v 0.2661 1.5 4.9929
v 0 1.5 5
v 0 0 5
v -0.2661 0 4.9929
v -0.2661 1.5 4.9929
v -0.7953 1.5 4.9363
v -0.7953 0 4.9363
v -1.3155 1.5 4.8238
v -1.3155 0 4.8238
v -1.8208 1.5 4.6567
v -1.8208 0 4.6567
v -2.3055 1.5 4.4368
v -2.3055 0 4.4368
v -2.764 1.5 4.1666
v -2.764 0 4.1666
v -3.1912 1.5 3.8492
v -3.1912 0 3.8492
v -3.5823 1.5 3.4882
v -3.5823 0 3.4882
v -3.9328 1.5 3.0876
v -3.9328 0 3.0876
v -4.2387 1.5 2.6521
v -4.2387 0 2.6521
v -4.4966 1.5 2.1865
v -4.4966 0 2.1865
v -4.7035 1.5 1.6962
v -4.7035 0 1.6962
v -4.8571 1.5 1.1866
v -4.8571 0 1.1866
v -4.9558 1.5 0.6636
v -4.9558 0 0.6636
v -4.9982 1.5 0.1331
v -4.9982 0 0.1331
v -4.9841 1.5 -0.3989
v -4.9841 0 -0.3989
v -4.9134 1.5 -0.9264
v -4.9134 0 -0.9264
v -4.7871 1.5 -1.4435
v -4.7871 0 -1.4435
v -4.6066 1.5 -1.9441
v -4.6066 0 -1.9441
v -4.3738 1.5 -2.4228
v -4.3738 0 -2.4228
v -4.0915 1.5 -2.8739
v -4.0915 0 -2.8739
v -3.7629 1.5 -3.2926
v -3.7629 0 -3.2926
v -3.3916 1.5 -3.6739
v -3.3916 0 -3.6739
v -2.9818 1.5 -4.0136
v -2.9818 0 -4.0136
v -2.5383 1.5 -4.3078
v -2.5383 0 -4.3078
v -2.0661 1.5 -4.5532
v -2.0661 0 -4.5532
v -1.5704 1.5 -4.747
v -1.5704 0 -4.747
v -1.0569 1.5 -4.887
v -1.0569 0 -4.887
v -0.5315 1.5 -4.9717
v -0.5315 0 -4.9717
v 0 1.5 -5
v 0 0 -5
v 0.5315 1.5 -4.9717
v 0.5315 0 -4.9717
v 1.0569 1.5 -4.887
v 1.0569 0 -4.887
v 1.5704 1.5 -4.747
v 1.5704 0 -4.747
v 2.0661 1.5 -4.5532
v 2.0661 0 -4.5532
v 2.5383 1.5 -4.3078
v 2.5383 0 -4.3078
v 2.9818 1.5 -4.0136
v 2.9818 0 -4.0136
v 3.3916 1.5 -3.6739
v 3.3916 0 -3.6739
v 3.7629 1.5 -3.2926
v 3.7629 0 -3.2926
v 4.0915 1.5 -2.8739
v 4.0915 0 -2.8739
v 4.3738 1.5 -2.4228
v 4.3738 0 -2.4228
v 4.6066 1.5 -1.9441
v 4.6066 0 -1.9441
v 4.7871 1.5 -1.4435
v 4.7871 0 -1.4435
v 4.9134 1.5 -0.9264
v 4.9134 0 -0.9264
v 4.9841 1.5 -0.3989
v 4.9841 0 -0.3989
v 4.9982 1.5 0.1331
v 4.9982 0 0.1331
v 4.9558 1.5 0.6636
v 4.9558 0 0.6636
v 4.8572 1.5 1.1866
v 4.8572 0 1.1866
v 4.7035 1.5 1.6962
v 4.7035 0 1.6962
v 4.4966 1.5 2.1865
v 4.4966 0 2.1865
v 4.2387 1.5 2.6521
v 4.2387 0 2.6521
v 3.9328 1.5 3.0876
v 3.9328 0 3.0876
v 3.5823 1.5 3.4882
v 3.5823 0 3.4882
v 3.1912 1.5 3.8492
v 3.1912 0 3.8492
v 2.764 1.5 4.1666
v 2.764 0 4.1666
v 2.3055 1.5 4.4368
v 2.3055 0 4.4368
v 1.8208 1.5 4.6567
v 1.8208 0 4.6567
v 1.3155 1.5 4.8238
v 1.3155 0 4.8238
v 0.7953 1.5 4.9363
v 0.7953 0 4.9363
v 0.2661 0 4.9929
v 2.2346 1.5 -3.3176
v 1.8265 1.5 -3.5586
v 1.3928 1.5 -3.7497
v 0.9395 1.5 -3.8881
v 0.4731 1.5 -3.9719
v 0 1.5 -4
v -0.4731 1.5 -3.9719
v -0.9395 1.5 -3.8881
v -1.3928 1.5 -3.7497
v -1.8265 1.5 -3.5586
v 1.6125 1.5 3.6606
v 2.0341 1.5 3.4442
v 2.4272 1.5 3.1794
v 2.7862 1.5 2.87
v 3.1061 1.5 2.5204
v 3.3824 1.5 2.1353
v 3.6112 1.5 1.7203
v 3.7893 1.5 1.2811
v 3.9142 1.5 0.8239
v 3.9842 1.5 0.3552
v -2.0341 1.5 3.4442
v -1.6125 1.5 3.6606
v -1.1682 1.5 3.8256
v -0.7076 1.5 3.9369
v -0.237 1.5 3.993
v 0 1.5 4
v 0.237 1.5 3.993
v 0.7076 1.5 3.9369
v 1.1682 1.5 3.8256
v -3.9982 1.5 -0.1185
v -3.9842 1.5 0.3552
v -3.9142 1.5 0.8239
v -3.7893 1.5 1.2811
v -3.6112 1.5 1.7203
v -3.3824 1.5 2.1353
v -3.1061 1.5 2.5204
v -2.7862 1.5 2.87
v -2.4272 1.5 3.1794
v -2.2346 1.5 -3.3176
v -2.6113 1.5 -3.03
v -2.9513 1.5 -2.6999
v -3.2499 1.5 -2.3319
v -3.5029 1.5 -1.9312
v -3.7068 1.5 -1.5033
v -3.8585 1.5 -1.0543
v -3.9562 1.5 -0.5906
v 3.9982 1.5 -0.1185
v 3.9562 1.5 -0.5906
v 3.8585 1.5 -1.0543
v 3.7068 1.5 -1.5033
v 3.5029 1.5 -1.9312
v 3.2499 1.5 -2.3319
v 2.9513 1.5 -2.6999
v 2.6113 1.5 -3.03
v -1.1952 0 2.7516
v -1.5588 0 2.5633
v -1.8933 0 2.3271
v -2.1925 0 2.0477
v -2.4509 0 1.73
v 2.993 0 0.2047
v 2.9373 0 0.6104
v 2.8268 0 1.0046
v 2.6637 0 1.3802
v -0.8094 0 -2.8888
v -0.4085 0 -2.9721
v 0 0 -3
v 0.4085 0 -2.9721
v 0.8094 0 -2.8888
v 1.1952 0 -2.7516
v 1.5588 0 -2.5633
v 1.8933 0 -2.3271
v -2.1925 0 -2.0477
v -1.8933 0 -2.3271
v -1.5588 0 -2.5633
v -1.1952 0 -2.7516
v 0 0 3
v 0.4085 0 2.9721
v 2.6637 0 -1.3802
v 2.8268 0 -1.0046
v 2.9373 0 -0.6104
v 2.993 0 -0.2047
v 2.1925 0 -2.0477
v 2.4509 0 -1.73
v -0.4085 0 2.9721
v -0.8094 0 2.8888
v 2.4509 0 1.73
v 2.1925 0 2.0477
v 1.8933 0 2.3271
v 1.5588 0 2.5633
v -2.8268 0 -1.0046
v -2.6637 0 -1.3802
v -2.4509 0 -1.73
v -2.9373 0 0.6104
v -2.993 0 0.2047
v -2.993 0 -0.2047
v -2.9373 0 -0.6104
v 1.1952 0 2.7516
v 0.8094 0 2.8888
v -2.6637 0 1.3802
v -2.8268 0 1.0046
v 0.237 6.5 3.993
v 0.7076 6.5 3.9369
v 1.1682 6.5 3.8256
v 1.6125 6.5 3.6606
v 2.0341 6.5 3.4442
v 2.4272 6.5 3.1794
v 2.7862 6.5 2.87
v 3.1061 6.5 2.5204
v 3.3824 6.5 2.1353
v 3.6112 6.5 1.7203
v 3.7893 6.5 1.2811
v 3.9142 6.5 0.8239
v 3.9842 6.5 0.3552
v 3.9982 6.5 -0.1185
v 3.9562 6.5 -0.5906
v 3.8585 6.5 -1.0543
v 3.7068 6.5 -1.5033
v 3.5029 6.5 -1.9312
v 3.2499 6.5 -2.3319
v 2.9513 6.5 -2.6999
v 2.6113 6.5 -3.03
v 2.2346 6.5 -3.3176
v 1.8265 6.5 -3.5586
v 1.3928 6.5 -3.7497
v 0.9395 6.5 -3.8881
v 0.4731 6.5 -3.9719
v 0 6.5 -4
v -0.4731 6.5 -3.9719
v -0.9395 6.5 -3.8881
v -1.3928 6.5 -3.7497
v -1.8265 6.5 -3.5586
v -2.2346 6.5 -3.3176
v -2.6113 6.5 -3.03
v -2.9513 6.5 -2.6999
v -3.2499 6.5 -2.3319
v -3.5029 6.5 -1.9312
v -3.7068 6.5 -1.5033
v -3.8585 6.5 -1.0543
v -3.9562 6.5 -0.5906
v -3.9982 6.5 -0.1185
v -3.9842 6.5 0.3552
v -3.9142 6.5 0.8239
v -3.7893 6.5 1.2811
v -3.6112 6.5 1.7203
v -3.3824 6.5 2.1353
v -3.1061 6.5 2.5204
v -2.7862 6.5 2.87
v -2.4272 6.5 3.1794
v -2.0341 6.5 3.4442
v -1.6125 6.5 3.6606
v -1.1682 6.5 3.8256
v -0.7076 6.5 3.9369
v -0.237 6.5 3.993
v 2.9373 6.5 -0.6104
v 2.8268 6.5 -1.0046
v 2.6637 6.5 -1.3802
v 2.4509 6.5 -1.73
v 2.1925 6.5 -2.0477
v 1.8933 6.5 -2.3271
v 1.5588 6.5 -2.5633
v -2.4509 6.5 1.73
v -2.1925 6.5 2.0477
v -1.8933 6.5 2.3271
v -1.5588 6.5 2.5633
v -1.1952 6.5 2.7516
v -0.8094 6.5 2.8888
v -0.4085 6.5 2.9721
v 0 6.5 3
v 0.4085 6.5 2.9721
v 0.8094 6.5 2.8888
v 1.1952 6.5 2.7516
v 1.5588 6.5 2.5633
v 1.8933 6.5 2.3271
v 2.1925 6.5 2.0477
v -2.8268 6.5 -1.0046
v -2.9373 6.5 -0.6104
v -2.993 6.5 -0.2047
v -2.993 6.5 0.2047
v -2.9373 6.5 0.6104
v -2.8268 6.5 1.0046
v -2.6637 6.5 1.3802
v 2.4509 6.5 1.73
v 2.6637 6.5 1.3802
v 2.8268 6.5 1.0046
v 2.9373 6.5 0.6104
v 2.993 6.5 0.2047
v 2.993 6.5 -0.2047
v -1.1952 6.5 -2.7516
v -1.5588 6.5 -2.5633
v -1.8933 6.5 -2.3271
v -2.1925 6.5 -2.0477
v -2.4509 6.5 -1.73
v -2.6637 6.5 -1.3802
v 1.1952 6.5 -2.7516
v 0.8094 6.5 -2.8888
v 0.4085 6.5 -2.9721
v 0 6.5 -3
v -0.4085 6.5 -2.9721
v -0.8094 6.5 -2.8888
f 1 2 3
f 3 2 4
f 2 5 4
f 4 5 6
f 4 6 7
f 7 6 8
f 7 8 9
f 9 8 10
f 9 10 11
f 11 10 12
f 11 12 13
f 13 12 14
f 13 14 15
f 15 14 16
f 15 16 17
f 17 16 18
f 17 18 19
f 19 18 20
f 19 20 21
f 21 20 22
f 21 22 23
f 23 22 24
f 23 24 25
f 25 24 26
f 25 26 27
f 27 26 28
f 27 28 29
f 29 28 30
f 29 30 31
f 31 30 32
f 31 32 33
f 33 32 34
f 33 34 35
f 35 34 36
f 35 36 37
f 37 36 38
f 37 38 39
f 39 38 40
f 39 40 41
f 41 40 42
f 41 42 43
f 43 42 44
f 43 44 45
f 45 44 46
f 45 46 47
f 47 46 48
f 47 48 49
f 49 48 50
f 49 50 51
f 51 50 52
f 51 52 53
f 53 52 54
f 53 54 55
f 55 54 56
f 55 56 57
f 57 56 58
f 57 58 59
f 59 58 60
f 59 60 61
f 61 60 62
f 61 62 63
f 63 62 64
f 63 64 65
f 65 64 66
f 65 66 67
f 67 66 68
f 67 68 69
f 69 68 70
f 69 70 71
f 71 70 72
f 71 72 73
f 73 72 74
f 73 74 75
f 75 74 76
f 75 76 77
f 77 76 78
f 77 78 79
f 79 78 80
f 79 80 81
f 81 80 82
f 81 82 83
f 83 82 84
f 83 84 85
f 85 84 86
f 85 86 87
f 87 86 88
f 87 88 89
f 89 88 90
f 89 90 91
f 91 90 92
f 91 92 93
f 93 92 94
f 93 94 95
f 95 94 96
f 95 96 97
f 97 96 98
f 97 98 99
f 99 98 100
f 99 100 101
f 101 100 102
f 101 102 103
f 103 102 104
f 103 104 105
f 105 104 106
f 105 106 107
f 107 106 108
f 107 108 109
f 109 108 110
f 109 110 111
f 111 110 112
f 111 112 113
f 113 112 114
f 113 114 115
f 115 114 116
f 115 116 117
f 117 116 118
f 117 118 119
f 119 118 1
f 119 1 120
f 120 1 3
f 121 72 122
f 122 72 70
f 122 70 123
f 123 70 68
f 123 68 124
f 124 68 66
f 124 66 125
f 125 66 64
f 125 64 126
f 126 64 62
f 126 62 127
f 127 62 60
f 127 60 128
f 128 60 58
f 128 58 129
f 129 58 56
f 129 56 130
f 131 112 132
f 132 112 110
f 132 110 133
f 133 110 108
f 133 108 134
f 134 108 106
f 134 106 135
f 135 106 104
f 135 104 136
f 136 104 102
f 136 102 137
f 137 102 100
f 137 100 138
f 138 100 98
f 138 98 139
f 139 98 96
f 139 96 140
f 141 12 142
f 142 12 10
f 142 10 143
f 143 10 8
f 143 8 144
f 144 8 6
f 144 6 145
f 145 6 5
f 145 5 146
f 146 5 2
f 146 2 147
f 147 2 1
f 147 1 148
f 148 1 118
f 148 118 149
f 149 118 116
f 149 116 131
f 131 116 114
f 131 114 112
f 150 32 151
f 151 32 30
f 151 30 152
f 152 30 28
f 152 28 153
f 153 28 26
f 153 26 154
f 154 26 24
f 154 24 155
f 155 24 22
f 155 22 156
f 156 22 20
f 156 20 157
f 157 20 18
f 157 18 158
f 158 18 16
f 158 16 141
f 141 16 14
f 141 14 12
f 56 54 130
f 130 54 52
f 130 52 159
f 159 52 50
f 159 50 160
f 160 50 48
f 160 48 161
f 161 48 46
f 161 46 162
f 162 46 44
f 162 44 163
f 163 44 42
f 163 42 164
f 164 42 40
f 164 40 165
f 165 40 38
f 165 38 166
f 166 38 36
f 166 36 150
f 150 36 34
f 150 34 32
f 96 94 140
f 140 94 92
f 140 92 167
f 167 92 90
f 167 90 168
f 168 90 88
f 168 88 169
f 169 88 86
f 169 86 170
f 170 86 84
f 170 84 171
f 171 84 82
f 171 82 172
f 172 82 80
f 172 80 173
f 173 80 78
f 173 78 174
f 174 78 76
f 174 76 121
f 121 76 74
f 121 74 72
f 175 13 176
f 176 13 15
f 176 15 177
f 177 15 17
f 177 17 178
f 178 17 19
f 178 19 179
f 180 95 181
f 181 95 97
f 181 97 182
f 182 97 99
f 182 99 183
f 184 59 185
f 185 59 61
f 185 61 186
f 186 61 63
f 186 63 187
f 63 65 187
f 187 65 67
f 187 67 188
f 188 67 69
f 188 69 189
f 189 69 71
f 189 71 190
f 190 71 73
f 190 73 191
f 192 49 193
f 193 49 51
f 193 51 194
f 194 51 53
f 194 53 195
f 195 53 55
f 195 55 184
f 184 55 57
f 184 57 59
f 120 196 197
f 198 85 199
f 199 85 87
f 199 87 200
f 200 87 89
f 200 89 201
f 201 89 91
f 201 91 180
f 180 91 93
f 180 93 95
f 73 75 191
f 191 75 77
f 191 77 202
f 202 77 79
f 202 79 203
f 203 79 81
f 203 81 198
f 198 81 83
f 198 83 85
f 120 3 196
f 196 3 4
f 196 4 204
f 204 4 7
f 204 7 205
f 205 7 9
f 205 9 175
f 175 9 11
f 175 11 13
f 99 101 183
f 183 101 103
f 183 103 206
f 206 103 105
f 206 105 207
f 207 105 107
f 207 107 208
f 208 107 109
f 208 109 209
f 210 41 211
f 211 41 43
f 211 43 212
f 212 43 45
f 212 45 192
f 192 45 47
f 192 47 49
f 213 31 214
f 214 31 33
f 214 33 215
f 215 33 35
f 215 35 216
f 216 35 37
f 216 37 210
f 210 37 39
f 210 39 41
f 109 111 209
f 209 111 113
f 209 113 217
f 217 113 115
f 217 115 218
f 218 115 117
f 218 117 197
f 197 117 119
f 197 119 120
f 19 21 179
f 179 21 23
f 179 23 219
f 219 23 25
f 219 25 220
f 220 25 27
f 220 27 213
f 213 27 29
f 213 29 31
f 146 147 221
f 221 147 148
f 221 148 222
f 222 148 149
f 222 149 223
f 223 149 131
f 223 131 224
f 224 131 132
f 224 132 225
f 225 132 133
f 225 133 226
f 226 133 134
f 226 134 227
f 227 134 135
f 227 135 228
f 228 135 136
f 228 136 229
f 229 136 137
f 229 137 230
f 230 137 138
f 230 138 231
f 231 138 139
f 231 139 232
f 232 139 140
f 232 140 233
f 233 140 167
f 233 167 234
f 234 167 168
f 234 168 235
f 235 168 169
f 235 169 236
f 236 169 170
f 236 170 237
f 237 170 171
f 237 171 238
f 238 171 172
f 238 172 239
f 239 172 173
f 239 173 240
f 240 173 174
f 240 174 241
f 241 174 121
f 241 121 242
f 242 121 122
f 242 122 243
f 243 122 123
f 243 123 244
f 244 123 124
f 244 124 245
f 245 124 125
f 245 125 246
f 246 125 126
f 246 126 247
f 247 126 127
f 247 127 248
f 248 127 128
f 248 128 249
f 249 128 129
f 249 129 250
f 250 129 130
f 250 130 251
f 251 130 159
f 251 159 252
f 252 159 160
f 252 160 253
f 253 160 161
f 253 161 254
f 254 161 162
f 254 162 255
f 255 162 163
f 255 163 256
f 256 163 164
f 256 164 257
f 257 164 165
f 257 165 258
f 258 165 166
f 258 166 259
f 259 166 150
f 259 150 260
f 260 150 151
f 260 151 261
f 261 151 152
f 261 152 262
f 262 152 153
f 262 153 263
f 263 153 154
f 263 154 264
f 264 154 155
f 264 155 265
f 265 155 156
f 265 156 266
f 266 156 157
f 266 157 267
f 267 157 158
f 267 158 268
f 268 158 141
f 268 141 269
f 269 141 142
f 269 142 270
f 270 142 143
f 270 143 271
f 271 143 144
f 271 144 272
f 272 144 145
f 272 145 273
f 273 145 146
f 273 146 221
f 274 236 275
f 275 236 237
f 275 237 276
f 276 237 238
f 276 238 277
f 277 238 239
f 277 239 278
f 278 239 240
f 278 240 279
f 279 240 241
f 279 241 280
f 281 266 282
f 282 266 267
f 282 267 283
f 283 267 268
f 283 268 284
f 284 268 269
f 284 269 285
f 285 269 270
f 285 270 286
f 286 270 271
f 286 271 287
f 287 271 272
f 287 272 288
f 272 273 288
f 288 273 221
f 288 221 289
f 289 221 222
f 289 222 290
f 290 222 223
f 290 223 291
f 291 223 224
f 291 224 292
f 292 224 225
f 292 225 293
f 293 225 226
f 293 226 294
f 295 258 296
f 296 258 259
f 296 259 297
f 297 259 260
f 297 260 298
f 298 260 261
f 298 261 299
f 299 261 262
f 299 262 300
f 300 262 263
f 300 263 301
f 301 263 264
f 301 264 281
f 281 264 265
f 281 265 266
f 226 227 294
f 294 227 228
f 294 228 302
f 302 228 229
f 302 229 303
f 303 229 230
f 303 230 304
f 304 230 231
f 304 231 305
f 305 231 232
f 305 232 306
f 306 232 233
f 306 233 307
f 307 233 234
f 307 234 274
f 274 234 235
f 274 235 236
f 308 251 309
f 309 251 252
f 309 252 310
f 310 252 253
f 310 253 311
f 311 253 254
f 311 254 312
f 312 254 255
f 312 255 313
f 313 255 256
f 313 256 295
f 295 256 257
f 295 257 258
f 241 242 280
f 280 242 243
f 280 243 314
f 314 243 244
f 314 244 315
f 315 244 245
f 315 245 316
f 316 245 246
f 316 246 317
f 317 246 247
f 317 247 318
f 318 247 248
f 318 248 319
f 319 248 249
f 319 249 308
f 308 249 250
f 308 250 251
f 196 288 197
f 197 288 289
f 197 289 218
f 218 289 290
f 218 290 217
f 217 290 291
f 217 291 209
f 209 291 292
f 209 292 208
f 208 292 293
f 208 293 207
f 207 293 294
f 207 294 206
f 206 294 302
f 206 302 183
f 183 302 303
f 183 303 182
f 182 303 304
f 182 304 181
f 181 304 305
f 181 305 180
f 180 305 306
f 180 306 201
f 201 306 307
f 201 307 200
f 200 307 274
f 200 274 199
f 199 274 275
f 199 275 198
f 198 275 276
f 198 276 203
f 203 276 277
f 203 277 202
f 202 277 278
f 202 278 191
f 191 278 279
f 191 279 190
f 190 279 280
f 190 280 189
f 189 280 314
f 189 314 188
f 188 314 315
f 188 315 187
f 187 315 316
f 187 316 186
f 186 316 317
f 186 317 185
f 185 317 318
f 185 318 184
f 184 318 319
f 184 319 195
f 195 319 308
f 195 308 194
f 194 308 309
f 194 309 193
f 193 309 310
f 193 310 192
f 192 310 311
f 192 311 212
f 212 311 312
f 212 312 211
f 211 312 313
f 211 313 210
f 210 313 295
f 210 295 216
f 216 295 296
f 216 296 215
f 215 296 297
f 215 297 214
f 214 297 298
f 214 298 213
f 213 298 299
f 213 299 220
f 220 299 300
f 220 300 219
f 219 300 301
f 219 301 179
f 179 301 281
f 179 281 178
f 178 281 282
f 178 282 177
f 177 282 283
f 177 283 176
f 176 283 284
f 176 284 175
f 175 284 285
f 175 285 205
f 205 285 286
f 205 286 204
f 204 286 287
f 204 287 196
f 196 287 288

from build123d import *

# Parameters (mm, degrees)
SKETCH2_R           = 5
BOSS_EXTRUDE1_DEPTH = 1.5
SKETCH3_R           = 4
BOSS_EXTRUDE2_DEPTH = 6.5
SKETCH4_R           = 3
CUT_EXTRUDE1_DEPTH  = 10.604686356


with BuildPart() as part:
    # Sketch2 → Boss-Extrude1 (new body)
    with BuildSketch(Plane(origin=(0, 0, 0), x_dir=(1, 0, 0), z_dir=(0, 1, 0))):
        with Locations(Location((0, 0, 0), (0, 0, 270))):
            Circle(SKETCH2_R)
    extrude(amount=BOSS_EXTRUDE1_DEPTH)

    # Sketch3 → Boss-Extrude2 (add)
    with BuildSketch(Plane.XZ):
        with Locations(Location((0, 0, 0), (0, 0, 270))):
            Circle(SKETCH3_R)
    extrude(amount=-BOSS_EXTRUDE2_DEPTH)

    # Sketch4 → Cut-Extrude1 (cut, through all)
    with BuildSketch(Plane(origin=(0, 6.5, 0), x_dir=(1, 0, 0), z_dir=(0, 1, 0))):
        with Locations(Location((0, 0, 0), (0, 0, 270))):
            Circle(SKETCH4_R)
    extrude(amount=-CUT_EXTRUDE1_DEPTH, mode=Mode.SUBTRACT)


solid = part.part
